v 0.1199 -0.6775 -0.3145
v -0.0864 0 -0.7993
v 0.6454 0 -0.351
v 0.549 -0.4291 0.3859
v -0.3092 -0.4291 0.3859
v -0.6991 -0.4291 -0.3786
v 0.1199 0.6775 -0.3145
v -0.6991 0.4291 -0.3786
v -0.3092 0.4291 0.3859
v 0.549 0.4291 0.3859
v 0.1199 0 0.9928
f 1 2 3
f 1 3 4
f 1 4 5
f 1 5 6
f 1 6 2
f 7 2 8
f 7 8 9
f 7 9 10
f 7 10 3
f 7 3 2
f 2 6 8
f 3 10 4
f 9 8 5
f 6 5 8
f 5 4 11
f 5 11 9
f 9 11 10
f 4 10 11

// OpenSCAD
polyhedron( points = [[0.119880048000999, -0.677491192203937, -0.314548422538443], [0.119880048061832, 0.677490983571128, -0.314548422488372], [-0.0863938001402248, 1.04340328251888e-06, -0.799288230056033], [0.645422107092045, -1.04388360381911e-07, -0.35099949650713], [-0.309222885700464, -0.429103038085493, 0.385945194892801], [-0.309222885661934, 0.429102829349999, 0.385945194892801], [0.54898298165797, -0.429103038085493, 0.385945194892801], [0.548982981619443, 0.429102829349999, 0.385945194892801], [-0.699094321484598, -0.429103037952398, -0.37859229565971], [-0.699094321446068, 0.42910282940604, -0.37859229565971], [0.119880048000999, -1.04364766578765e-07, 0.992788383338195]], faces = [[0, 2, 3], [0, 3, 6], [0, 6, 4], [0, 4, 8], [0, 8, 2], [1, 2, 9], [1, 9, 5], [1, 5, 7], [1, 7, 3], [1, 3, 2], [2, 8, 9], [3, 7, 6], [4, 5, 9, 8], [4, 6, 10], [4, 10, 5], [5, 10, 7], [6, 7, 10]]);
